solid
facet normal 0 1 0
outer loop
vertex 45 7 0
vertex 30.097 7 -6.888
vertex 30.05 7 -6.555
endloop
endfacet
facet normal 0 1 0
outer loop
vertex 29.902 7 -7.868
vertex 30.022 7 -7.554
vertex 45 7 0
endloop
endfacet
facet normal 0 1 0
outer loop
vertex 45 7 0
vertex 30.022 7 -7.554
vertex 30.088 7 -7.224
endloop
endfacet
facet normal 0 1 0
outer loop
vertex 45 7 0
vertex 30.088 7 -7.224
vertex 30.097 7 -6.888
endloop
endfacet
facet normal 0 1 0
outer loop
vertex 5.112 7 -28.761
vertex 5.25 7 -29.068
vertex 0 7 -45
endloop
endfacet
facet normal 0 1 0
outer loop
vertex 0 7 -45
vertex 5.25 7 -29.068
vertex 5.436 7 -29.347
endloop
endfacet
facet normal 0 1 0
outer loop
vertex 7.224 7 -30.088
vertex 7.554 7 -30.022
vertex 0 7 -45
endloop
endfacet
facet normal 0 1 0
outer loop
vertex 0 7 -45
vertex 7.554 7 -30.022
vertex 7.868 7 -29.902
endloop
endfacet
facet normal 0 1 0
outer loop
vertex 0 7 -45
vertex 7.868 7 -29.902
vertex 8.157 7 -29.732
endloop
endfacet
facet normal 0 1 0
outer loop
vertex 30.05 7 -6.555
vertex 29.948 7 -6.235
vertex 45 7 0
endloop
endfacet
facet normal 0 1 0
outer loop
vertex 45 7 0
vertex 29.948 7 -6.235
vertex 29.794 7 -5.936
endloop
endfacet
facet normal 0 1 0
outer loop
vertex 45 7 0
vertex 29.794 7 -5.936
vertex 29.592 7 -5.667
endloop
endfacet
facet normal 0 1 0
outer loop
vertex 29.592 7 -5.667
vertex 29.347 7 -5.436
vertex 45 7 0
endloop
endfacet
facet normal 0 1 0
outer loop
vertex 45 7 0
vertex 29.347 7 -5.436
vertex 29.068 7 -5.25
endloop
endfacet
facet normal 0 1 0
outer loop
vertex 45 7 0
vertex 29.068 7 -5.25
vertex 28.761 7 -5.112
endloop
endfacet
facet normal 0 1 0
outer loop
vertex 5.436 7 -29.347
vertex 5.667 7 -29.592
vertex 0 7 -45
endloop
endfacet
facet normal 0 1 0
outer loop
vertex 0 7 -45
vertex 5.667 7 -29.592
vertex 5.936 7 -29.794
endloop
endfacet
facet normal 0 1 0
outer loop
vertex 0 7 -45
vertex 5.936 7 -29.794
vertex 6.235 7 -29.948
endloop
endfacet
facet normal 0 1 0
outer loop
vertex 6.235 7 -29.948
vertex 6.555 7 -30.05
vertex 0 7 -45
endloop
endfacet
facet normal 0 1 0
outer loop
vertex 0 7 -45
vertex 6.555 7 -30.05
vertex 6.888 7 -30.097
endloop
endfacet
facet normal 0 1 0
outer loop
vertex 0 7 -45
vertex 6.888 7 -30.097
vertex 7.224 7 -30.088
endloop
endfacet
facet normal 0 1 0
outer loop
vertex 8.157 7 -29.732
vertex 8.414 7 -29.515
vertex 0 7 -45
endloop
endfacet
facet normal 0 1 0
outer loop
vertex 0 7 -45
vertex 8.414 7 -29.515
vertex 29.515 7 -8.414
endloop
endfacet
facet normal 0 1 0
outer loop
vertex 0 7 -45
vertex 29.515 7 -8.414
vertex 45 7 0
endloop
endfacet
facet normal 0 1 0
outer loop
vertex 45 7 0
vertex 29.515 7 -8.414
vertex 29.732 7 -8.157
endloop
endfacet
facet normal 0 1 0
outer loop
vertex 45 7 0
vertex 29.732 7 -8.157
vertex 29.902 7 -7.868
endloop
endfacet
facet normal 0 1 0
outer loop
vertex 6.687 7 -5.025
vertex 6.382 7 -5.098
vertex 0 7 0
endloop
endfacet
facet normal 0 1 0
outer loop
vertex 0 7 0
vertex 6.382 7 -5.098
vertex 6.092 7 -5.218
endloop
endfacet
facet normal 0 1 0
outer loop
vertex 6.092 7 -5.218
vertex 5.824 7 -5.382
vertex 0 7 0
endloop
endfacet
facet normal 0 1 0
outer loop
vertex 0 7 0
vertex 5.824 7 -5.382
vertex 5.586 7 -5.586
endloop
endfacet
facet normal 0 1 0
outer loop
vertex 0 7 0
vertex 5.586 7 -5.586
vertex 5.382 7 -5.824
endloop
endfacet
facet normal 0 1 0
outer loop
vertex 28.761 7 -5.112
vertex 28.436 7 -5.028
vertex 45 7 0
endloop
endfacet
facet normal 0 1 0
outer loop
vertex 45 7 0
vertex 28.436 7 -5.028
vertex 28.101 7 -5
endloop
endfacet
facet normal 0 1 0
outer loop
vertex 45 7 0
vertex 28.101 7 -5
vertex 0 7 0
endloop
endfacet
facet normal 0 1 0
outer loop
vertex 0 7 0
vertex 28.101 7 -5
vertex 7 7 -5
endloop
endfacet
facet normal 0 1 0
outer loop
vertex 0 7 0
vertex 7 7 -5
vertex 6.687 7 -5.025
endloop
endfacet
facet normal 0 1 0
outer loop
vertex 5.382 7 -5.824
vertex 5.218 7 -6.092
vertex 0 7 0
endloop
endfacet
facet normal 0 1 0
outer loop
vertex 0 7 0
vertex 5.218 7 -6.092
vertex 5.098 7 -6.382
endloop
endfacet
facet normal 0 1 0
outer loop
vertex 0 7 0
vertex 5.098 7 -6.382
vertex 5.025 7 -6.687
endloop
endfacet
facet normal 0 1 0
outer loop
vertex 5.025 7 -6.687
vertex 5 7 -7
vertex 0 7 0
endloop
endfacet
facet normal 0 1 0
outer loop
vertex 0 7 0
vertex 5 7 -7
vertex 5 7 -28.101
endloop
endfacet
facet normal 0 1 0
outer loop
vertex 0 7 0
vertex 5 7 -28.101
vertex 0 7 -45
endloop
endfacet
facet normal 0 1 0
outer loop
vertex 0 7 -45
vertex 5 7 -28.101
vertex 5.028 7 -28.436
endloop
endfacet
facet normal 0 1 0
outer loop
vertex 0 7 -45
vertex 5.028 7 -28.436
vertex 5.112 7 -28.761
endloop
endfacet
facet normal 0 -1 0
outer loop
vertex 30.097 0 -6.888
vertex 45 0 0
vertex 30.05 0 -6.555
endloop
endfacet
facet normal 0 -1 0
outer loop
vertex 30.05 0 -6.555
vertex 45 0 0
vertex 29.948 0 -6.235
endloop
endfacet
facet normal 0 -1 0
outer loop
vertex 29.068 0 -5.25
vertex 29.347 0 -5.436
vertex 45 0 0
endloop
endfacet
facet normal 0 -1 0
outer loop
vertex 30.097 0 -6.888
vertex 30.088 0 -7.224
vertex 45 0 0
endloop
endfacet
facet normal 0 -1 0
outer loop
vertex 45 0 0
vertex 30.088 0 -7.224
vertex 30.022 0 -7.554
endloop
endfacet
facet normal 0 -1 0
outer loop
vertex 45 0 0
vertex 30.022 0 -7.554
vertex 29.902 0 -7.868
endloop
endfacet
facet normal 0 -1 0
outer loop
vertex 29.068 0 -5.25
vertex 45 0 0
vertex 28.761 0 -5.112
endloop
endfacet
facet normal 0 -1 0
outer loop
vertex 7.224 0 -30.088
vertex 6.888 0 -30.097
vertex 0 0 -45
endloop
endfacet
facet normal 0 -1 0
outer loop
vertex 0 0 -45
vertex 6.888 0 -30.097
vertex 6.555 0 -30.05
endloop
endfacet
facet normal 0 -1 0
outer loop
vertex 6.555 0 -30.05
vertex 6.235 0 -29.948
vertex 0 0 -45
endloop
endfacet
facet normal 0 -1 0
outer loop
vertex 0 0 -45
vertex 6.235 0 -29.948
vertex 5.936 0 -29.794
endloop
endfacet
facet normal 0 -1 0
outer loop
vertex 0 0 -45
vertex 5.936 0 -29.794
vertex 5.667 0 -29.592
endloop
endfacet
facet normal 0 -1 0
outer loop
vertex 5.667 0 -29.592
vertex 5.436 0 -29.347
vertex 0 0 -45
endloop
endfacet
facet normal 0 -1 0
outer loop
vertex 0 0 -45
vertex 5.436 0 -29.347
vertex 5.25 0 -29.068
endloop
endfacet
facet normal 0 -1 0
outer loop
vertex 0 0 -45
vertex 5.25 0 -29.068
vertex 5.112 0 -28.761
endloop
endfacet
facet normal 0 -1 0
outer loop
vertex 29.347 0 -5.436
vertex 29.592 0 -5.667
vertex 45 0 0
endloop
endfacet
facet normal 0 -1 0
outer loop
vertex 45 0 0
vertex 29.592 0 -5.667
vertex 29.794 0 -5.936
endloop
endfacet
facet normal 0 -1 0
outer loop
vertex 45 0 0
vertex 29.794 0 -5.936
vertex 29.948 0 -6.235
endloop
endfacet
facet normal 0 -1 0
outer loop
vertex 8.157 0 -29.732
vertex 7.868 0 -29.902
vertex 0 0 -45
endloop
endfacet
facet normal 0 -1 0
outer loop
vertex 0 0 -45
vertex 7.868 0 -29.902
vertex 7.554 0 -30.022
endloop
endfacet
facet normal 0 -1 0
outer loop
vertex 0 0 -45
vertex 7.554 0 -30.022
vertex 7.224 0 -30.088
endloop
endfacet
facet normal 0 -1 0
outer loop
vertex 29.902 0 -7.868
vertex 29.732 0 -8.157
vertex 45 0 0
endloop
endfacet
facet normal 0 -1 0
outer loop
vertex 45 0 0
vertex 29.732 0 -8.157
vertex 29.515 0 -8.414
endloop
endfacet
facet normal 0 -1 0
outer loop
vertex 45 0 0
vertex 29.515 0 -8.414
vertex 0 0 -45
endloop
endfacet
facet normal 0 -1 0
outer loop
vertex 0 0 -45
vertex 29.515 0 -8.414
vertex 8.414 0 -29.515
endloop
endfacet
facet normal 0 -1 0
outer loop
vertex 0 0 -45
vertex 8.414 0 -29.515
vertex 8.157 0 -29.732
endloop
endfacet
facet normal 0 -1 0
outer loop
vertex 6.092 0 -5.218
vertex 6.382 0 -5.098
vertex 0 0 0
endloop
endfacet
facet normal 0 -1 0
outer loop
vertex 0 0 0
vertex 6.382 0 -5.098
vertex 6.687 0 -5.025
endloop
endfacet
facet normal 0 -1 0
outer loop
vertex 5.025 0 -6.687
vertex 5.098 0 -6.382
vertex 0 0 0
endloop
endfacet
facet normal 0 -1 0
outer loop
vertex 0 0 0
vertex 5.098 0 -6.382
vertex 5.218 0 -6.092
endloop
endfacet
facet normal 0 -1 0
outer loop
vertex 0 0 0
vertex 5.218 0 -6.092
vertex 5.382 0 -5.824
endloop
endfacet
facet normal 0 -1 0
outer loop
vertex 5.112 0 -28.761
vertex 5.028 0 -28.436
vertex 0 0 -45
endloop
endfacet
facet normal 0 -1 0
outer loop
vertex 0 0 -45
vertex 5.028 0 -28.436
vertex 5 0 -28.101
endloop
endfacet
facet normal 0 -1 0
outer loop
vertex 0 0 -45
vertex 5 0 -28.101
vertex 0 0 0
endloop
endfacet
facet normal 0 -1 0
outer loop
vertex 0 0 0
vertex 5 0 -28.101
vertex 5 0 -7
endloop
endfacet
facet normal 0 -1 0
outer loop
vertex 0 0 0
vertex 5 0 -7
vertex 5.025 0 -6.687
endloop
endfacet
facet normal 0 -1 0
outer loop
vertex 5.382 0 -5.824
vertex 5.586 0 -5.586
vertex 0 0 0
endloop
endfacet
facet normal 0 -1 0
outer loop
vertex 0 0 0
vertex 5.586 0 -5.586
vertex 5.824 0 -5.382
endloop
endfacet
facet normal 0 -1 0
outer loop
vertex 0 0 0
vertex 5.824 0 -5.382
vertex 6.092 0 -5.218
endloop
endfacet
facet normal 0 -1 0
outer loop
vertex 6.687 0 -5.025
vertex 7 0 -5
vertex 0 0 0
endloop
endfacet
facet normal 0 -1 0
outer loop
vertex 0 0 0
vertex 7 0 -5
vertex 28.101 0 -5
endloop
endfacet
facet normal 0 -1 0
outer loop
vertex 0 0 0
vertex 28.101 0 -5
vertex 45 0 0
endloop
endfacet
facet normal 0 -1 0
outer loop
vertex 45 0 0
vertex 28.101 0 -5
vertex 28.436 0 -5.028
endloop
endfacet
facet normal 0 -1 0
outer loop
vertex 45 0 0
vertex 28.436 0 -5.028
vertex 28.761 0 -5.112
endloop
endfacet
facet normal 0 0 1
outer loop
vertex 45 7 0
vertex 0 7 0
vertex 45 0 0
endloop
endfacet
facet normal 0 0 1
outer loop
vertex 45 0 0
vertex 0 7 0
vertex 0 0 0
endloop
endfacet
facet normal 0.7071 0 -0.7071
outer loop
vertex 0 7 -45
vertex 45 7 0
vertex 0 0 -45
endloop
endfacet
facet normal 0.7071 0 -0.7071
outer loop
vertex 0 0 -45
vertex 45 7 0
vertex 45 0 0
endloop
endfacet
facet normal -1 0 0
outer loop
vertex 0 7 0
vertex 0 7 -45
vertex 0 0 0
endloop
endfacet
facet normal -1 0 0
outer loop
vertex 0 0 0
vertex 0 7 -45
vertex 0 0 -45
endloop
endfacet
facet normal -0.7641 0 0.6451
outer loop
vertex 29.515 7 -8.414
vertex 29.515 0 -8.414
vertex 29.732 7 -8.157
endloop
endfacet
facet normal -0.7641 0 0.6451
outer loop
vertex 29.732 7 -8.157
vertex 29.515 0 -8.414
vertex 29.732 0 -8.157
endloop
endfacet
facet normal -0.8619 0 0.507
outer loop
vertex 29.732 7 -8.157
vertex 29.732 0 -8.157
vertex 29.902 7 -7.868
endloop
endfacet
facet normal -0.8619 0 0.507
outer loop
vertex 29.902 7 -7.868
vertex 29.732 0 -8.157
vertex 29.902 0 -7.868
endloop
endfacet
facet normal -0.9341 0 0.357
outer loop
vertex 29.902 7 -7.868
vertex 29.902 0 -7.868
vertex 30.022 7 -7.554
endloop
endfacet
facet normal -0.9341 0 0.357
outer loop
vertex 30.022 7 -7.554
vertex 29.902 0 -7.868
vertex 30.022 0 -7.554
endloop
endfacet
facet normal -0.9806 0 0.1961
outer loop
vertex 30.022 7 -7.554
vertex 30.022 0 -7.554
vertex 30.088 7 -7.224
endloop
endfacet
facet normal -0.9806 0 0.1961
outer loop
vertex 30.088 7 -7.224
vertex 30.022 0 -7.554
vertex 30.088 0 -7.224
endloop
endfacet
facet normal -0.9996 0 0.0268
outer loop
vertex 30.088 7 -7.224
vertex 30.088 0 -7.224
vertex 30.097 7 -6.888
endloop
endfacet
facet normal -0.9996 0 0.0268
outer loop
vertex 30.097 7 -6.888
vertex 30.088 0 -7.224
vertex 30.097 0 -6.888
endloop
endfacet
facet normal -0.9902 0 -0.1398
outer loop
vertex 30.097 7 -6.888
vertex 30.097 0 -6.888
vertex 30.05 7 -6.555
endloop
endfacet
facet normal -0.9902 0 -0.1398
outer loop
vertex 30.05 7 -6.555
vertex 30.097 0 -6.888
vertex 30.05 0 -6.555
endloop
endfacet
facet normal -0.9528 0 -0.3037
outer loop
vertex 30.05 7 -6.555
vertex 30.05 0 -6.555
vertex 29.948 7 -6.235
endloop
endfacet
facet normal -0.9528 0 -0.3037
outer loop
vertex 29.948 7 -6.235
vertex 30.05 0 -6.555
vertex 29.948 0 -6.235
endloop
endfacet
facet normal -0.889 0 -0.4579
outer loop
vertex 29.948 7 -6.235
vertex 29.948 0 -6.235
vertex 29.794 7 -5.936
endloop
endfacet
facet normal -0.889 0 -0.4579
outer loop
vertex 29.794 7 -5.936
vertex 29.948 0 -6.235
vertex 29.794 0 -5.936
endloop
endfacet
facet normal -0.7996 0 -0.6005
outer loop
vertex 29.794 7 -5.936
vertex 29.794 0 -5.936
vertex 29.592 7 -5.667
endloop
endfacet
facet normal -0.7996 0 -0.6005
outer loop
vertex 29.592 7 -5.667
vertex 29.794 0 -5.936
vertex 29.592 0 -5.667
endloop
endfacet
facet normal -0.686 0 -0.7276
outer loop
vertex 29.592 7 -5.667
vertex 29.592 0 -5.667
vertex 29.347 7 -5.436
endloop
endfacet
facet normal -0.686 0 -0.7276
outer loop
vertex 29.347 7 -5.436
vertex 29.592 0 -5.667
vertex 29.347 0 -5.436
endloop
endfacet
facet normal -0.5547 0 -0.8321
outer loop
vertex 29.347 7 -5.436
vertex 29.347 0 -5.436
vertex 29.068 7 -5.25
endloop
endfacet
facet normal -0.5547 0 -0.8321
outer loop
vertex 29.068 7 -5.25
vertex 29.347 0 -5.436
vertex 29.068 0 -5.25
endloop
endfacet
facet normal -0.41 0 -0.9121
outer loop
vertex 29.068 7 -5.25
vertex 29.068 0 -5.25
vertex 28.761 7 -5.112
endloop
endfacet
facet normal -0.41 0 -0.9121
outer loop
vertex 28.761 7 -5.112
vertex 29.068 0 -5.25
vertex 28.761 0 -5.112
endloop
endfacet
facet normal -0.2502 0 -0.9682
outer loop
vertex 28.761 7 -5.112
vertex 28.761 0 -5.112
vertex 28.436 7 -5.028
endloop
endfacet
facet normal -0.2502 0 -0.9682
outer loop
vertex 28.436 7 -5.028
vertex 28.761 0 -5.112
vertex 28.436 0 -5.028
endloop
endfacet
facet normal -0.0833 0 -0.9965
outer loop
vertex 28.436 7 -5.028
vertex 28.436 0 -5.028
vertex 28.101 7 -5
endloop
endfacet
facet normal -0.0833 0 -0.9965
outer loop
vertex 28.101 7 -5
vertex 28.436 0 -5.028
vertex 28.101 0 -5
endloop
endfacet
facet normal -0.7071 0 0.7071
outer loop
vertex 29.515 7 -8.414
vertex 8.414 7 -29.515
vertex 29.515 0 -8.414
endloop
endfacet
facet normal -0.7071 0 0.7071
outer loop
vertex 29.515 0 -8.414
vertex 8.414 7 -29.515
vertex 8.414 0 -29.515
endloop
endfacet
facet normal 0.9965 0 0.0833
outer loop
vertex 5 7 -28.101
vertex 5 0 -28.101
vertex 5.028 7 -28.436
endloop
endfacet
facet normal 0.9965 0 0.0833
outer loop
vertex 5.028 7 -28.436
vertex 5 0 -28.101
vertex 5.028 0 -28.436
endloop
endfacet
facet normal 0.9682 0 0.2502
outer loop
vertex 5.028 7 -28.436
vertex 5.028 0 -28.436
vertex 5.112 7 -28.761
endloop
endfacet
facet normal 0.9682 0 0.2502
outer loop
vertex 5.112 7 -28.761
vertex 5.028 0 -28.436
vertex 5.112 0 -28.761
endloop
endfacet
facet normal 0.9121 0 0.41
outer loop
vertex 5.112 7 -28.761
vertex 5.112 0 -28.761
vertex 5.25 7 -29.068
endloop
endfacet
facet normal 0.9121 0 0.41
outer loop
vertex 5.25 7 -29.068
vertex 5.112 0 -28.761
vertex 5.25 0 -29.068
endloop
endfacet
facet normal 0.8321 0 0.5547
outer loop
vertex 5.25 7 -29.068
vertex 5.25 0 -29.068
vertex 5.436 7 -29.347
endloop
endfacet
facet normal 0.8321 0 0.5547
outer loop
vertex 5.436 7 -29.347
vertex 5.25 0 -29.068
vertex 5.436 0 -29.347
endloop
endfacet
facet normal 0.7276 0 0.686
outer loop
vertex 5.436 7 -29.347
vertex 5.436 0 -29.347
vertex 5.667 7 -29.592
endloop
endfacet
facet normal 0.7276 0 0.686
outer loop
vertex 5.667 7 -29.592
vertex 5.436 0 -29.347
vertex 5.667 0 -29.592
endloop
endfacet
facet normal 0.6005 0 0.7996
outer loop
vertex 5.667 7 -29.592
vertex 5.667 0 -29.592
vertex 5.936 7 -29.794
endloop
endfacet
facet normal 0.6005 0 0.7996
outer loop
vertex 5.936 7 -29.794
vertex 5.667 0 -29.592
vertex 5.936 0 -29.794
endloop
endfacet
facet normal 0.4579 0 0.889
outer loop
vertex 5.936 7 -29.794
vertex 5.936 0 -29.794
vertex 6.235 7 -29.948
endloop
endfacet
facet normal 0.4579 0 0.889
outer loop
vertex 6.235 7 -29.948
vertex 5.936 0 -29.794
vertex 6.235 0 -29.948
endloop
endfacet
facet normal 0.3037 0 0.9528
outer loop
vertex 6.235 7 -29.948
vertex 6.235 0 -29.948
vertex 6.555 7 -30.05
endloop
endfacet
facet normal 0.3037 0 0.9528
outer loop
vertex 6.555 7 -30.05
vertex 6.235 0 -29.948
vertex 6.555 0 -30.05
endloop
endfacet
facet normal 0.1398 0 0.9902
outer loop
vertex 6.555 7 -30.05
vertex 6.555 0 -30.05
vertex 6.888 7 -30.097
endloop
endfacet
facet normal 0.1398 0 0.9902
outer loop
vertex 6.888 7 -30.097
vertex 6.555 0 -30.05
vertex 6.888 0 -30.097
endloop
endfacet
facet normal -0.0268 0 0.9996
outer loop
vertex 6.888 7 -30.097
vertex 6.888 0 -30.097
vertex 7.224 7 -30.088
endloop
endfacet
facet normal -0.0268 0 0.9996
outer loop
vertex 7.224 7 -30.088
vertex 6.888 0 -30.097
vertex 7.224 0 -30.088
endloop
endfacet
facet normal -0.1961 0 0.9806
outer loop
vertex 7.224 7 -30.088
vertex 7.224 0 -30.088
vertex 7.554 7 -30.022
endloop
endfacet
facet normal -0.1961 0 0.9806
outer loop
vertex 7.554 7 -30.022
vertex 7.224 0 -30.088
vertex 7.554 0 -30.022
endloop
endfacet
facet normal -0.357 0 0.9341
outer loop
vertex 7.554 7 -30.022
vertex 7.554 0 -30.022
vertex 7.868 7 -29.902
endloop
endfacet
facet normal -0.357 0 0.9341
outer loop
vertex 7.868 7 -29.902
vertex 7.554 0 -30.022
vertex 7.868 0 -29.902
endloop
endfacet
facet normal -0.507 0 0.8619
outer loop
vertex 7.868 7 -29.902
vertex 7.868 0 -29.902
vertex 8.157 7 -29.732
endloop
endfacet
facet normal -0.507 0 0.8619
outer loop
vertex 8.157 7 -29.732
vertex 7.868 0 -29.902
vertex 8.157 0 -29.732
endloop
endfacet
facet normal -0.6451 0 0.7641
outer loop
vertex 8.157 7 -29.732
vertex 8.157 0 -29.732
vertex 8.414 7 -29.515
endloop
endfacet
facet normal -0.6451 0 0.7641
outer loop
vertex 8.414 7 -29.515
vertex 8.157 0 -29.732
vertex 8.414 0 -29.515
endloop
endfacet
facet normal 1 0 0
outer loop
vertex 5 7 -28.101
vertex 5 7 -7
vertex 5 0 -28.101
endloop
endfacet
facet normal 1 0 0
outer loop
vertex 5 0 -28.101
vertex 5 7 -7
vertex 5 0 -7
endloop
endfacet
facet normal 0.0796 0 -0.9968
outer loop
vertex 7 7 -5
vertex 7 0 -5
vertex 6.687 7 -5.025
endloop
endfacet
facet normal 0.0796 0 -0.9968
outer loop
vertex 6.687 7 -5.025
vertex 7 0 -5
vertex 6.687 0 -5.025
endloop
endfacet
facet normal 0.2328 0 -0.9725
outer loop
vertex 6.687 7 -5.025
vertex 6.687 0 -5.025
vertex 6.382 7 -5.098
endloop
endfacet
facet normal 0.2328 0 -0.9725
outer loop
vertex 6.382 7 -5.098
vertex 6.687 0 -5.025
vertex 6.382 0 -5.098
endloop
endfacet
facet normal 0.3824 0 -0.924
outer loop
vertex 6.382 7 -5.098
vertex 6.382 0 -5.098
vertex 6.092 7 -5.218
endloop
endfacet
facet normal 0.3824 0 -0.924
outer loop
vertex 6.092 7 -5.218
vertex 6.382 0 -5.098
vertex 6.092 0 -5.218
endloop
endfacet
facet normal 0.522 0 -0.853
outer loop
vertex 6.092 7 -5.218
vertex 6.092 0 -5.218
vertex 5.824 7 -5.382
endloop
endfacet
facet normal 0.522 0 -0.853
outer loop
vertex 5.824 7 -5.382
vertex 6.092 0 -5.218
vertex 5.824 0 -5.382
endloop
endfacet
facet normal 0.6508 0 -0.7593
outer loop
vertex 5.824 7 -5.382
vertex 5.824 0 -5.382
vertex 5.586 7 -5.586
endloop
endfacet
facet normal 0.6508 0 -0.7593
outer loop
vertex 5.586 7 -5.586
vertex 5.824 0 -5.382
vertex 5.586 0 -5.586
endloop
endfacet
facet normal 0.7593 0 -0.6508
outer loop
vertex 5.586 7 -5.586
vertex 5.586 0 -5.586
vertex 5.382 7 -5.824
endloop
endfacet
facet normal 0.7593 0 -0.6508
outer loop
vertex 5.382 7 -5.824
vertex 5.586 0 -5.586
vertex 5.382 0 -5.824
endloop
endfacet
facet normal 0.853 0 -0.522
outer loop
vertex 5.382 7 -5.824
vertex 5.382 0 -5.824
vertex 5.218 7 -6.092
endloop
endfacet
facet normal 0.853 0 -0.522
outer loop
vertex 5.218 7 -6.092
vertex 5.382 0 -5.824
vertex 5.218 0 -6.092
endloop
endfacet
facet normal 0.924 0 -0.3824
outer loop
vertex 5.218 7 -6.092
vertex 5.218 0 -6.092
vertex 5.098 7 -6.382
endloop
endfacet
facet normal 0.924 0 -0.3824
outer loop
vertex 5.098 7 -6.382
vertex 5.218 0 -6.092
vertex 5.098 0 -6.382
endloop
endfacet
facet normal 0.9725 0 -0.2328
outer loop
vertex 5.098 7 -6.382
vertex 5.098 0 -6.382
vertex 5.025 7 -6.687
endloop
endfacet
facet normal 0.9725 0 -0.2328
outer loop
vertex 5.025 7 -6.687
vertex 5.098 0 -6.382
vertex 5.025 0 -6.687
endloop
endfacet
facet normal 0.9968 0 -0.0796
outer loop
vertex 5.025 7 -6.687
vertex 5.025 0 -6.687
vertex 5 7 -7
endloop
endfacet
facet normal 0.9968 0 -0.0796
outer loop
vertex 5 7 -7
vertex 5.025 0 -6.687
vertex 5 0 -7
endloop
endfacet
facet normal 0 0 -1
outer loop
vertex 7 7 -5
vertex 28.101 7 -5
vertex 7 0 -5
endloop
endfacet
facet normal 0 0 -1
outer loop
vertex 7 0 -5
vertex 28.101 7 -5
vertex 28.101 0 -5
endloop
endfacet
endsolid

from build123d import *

# Parameters (mm, degrees)
BOSS_EXTRUDE1_DEPTH = 7


with BuildPart() as part:
    # Sketch1 → Boss-Extrude1 (new body)
    with BuildSketch(Plane(origin=(0, 0, 0), x_dir=(1, 0, 0), z_dir=(0, 1, 0))):
        Polygon((0, 0), (0, 45), (45, 0), align=None)
        with BuildLine():
            Line((5, 7), (5, 28.100505063))
            ThreePointArc((5, 28.100505063), (6.234633135, 29.948264128), (8.414213562, 29.514718626))
            Line((8.414213562, 29.514718626), (29.514718626, 8.414213562))
            ThreePointArc((29.514718626, 8.414213562), (29.948264128, 6.234633135), (28.100505063, 5))
            Line((28.100505063, 5), (7, 5))
            ThreePointArc((7, 5), (5.585786438, 5.585786438), (5, 7))
        make_face(mode=Mode.SUBTRACT)
    extrude(amount=BOSS_EXTRUDE1_DEPTH)


solid = part.part
